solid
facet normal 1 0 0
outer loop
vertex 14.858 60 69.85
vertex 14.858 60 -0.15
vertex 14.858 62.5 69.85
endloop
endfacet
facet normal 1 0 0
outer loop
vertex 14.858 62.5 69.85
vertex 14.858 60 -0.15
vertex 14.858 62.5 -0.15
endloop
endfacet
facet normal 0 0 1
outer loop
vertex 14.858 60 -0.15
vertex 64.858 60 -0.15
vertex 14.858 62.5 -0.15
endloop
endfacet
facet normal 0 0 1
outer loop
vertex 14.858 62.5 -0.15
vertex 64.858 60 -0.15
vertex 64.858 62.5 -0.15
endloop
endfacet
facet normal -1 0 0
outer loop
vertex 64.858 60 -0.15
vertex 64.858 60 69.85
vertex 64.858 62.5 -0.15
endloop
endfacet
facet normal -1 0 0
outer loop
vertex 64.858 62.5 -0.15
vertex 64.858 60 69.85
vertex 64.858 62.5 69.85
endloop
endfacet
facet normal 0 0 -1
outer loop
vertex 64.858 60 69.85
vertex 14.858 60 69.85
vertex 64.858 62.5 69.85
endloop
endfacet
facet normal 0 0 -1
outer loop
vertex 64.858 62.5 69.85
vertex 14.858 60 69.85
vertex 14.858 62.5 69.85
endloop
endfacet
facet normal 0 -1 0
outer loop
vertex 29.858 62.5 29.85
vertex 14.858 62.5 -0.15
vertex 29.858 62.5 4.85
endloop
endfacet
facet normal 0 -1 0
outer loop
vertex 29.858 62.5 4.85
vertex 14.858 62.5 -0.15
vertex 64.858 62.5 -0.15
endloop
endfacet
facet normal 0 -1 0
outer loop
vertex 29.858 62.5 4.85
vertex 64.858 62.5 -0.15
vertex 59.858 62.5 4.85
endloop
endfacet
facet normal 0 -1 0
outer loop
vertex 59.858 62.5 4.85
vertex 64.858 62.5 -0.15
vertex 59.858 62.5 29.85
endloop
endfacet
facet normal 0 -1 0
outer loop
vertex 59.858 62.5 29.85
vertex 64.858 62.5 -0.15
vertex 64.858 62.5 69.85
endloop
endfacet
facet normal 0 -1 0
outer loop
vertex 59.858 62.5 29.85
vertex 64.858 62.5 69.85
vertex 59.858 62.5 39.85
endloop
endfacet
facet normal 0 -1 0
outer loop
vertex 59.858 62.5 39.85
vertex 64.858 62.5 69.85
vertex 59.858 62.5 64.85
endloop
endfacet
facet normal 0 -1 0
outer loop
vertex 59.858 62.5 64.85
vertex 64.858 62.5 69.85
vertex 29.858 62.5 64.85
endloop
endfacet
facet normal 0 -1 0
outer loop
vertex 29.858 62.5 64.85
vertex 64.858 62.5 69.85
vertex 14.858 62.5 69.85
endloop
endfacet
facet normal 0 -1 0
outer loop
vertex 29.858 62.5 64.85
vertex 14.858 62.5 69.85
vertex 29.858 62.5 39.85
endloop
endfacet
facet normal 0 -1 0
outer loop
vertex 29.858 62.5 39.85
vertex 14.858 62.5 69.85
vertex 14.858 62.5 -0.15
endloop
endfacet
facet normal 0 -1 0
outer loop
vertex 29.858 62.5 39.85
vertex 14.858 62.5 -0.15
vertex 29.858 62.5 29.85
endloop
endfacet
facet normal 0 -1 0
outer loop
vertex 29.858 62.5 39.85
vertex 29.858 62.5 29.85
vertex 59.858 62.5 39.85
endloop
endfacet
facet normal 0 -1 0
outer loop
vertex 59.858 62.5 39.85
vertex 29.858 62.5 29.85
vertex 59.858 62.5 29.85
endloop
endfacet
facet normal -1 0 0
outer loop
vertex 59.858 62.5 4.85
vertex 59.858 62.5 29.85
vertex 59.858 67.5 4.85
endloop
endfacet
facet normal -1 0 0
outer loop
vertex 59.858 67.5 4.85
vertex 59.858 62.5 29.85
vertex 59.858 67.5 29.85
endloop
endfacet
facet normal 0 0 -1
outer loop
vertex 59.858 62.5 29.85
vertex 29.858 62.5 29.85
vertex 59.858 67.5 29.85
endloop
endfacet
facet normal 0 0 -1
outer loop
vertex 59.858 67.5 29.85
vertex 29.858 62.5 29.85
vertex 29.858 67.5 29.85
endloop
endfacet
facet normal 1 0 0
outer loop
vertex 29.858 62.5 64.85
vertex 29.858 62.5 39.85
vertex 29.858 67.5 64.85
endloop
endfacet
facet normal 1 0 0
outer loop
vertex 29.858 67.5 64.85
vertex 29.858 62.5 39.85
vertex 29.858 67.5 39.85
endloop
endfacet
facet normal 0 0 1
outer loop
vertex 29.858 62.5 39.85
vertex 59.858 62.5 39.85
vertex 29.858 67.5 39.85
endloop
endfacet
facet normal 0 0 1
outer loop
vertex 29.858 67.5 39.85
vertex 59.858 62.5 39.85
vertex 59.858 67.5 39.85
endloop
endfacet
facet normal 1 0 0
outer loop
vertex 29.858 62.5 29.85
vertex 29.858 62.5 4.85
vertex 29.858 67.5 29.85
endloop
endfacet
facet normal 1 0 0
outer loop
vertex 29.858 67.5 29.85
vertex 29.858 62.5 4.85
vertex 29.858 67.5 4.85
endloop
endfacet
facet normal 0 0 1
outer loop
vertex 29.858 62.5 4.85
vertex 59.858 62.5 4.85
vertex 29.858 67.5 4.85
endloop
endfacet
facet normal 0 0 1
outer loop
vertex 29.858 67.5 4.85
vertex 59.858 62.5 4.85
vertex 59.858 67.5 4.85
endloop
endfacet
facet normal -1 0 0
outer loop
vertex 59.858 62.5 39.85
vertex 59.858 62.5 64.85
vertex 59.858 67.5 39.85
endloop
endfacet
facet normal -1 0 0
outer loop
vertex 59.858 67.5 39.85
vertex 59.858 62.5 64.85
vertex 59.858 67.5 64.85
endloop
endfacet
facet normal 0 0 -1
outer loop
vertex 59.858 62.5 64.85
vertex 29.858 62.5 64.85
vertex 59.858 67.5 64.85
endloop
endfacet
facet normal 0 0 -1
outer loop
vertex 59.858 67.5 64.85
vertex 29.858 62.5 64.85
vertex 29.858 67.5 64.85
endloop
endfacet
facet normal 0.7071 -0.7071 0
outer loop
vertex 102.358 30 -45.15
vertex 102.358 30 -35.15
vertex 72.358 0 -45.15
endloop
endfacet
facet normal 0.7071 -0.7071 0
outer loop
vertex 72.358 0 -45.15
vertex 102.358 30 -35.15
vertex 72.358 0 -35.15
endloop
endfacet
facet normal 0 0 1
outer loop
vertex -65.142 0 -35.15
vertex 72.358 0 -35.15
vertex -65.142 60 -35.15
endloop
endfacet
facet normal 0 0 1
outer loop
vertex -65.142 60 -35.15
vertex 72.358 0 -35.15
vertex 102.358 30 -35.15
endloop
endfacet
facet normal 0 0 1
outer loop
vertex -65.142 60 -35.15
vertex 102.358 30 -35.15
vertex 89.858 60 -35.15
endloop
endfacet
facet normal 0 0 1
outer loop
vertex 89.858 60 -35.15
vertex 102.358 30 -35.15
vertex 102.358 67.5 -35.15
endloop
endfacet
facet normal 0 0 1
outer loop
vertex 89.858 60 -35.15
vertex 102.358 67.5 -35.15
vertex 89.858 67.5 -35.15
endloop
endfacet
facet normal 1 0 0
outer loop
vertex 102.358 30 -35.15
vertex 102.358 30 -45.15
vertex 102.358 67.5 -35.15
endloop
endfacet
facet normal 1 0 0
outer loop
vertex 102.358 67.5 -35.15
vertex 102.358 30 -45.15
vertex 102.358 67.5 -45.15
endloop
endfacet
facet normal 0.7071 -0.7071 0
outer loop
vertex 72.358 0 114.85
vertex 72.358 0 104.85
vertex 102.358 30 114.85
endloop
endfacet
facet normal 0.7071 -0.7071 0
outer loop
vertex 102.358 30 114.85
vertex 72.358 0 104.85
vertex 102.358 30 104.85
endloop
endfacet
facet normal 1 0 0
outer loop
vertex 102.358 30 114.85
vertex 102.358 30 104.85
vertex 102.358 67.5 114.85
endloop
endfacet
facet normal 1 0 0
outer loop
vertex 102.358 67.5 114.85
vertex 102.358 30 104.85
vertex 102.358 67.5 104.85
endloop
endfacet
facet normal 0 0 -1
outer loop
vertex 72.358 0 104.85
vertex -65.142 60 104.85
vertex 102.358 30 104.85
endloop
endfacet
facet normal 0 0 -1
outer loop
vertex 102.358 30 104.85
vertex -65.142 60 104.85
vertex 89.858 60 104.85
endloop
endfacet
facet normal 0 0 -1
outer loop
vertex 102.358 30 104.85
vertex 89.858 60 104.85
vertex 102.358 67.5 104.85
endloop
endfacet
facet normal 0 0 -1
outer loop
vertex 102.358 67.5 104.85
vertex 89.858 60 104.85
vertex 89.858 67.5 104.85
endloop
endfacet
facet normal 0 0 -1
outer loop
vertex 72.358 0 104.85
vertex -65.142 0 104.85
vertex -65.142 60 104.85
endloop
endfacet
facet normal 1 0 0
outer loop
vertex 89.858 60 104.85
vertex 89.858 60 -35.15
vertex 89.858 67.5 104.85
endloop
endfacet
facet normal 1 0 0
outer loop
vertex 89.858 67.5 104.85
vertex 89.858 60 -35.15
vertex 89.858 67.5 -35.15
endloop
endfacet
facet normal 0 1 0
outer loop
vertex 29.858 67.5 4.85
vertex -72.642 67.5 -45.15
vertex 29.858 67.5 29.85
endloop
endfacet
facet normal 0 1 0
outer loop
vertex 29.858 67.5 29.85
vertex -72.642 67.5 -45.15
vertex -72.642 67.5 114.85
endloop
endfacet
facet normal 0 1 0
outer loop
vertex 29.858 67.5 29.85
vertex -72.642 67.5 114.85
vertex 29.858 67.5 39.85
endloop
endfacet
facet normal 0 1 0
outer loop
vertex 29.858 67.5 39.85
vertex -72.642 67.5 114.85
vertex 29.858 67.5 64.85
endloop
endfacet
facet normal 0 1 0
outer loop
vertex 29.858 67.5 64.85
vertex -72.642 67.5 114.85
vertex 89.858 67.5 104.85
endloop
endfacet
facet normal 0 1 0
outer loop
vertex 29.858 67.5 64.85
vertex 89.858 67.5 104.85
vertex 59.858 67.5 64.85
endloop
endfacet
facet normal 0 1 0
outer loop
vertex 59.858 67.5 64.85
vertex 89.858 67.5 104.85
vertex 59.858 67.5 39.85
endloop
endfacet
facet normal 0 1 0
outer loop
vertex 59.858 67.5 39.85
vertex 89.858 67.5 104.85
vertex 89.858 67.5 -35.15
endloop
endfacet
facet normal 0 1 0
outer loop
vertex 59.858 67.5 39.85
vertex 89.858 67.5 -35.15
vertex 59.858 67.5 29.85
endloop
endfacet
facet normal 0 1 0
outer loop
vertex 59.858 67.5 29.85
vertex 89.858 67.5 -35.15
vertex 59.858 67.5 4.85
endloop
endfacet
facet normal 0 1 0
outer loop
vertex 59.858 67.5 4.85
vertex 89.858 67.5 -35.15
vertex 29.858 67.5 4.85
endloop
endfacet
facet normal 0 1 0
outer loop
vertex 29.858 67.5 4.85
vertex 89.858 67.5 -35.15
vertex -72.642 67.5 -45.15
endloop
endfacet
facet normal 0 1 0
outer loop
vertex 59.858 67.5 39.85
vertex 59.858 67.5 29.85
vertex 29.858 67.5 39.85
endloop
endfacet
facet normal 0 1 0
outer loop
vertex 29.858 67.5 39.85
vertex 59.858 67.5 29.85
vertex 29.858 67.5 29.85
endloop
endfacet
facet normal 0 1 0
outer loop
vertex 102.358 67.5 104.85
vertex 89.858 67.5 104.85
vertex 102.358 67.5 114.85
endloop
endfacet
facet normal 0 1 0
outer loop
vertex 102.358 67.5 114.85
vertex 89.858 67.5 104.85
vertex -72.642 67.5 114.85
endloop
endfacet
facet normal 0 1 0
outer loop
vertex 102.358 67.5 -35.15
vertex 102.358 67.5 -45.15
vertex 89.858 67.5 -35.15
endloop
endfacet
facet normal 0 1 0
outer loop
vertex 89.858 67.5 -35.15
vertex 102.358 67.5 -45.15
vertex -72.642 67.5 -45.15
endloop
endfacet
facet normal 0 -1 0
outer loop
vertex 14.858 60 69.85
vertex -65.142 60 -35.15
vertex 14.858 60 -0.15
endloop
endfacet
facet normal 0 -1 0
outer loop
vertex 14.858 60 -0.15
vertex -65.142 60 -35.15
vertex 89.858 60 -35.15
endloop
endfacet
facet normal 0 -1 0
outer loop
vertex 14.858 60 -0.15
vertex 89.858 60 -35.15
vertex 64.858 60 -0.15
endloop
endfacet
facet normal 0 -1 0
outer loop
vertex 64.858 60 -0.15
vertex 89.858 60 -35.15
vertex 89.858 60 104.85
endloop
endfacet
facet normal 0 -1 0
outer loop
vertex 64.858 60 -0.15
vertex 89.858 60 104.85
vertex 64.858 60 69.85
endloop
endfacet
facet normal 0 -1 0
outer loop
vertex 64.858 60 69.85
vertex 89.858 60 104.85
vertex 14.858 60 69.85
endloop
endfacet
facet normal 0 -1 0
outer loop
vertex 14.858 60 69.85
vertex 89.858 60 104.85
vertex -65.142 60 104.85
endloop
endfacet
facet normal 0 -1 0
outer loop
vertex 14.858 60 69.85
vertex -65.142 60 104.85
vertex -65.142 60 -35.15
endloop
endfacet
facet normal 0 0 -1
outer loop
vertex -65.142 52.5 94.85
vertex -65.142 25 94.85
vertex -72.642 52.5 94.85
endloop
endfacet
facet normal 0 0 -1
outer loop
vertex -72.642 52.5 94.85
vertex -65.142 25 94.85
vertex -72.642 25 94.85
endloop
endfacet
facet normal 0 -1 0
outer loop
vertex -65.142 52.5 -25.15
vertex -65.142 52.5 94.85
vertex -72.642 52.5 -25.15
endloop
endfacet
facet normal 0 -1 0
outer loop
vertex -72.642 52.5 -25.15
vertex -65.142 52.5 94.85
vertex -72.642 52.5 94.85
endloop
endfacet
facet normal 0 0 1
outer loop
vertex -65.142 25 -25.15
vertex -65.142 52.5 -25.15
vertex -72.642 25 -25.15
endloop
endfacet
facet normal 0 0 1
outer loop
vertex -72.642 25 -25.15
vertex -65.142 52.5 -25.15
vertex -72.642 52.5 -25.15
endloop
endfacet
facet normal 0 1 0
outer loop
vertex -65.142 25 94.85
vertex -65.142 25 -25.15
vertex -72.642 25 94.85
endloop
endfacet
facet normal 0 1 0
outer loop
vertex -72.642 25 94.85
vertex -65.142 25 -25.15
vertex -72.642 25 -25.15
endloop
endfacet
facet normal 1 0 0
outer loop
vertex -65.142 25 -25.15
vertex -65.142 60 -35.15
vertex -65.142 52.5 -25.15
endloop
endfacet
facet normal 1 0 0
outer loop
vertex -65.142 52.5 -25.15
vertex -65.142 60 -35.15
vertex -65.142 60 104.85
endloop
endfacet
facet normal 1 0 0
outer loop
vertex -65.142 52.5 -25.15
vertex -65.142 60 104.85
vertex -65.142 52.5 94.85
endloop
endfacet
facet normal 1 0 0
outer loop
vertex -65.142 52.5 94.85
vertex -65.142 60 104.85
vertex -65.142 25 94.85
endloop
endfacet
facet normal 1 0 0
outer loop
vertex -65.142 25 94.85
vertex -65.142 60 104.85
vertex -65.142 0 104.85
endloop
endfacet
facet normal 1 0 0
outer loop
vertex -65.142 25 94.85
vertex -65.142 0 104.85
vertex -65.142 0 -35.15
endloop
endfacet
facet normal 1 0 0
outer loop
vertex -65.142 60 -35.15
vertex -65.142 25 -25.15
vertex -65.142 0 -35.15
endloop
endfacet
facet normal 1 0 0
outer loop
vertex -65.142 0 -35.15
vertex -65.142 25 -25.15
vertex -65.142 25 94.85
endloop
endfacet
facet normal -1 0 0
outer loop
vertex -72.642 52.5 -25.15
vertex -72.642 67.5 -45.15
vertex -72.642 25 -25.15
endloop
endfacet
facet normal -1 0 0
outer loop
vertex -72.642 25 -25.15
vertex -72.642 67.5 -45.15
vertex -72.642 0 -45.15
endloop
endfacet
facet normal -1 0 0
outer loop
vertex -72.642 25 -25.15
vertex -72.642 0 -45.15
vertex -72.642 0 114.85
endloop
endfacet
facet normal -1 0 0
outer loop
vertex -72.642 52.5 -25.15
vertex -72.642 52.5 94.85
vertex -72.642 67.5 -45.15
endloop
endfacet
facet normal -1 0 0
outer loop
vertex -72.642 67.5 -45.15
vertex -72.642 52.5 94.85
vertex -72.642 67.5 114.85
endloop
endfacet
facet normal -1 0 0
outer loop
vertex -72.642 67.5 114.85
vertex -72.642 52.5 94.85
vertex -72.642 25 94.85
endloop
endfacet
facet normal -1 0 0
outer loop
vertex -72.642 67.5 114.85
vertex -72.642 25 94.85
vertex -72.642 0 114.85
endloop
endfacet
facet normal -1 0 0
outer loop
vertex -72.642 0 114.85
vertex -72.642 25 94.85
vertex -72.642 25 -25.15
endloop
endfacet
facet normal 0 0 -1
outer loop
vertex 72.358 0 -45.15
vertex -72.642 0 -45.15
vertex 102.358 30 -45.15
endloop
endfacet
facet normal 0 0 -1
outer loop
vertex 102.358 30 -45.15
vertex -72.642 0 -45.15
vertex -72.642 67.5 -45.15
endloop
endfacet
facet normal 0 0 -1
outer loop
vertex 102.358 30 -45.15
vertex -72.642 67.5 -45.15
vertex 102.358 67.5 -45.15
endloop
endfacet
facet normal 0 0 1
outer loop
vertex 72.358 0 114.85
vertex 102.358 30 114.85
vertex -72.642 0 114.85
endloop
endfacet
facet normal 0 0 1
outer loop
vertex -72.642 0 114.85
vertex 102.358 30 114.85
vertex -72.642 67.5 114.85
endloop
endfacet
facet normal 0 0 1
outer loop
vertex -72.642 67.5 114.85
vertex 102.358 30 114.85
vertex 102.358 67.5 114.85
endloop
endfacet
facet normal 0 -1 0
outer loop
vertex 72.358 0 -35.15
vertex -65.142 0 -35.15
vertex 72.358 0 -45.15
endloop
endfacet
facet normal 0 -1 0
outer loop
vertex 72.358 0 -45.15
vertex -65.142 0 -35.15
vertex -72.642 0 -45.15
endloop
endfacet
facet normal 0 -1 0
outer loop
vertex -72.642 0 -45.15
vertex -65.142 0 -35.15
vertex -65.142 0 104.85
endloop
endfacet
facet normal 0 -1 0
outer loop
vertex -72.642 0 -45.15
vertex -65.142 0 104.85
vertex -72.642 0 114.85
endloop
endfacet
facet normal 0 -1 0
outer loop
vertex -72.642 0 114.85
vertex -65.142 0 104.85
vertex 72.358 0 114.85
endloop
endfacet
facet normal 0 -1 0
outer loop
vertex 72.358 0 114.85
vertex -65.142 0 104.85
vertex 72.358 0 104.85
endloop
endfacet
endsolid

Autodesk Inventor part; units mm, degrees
ref_plane "YZ Plane" through (0, 0, 0) normal (1, 0, 0) x (0, 1, 0)
ref_plane "XZ Plane" through (0, 0, 0) normal (0, 1, 0) x (-1, 0, 0)
ref_plane "XY Plane" through (0, 0, 0) normal (0, 0, 1) x (1, 0, 0)
sketch "Sketch1" plane through (0, 0, 0) normal (0, 1, 0) x (-1, 0, 0)
  line L0 (72.6415, 114.85) -> (-102.3585, 114.85)
  line L1 (-102.3585, 114.85) -> (-102.3585, -45.15)
  line L2 (-102.3585, -45.15) -> (72.6415, -45.15)
  line L3 (72.6415, -45.15) -> (72.6415, 114.85)
  line L4 (65.1415, 104.85) -> (-102.3585, 104.85)
  line L5 (-102.3585, 104.85) -> (-102.3585, -35.15)
  line L6 (-102.3585, -35.15) -> (65.1415, -35.15)
  line L7 (65.1415, -35.15) -> (65.1415, 104.85)
  line L8 (-102.3585, -35.15) -> (-89.8585, -35.15)
  line L9 (-89.8585, -35.15) -> (-89.8585, 104.85)
  line L10 (-89.8585, 104.85) -> (-102.3585, 104.85)
  line L11 (-102.3585, 104.85) -> (-102.3585, -35.15)
  point P0 (0, 0)
  dimension "d0" = 175
  dimension "d1" = 160
  dimension "d2" = 7.5
  dimension "d3" = 0
  dimension "d4" = 10
  dimension "d5" = 10
  dimension "d6" = 140
  dimension "d7" = 167.5
  dimension "d8" = 12.5
extrude "Extrusion1" add sketch "Sketch1" along normal blind 60 contours L3 L2 L1 L6 L7 L4 L0
sketch "Sketch2" plane through (-72.6415, 0, -45.15) normal (-1, 0, 0) x (0, 0, 1)
  line L0 (20, 52.5) -> (140, 52.5)
  line L1 (140, 52.5) -> (140, 25)
  line L2 (140, 25) -> (20, 25)
  line L3 (20, 25) -> (20, 52.5)
  line L4 (160, 0) -> (160, 60) projected
  line L5 (0, 0) -> (0, 60) projected
  line L6 (0, 60) -> (160, 60) projected
  line L7 (0, 0) -> (160, 0) projected
  point P0 (45.15, 0)
  dimension "d11" = 20
  dimension "d12" = 20
  dimension "d13" = 7.5
  dimension "d14" = 25
  dimension "d15" = 120
  dimension "d16" = 27.5
extrude "Extrusion2" cut sketch "Sketch2" against normal blind 60 contours L0 L1 L2 L3
sketch "Sketch3" plane through (0, 60, 0) normal (0, 1, 0) x (1, 0, 0)
  line L0 (-72.6415, -114.85) -> (102.3585, -114.85) projected
  line L1 (102.3585, 45.15) -> (-72.6415, 45.15) projected
  line L2 (-72.6415, -114.85) -> (102.3585, -114.85)
  line L3 (102.3585, -114.85) -> (102.3585, 45.15)
  line L4 (102.3585, 45.15) -> (-72.6415, 45.15)
  line L5 (-72.6415, 45.15) -> (-72.6415, -114.85)
  point P0 (0, 0)
extrude "Extrusion3" add sketch "Sketch3" along normal blind 7.5
sketch "Sketch4" plane through (0, 60, 0) normal (0, -1, 0) x (1, 0, 0)
  line L0 (-65.1415, 104.85) -> (102.3585, 104.85) projected
  line L1 (102.3585, -35.15) -> (-65.1415, -35.15) projected
  line L2 (102.3585, 104.85) -> (89.8585, 104.85)
  line L3 (89.8585, 104.85) -> (89.8585, -35.15)
  line L4 (89.8585, -35.15) -> (102.3585, -35.15)
  line L5 (102.3585, -35.15) -> (102.3585, 104.85)
  point P0 (0, 0)
  dimension "d21" = 12.5
extrude "Extrusion4" cut sketch "Sketch4" against normal blind 7.5
chamfer "Chamfer1" distance 30 angle 45 2 edges at (102.3585, 0, 109.85) (102.3585, 0, -40.15)
sketch "Sketch5" plane through (0, 67.5, 0) normal (0, 1, 0) x (1, 0, 0)
  line L0 (59.8585, -4.85) -> (29.8585, -4.85)
  line L1 (29.8585, -4.85) -> (29.8585, -29.85)
  line L2 (29.8585, -29.85) -> (59.8585, -29.85)
  line L3 (59.8585, -29.85) -> (59.8585, -4.85)
  line L4 (59.8585, -64.85) -> (29.8585, -64.85)
  line L5 (29.8585, -64.85) -> (29.8585, -39.85)
  line L6 (29.8585, -39.85) -> (59.8585, -39.85)
  line L7 (59.8585, -39.85) -> (59.8585, -64.85)
  line L8 (89.8585, -104.85) -> (89.8585, 35.15) projected
  line L9 (-72.6415, -114.85) -> (102.3585, -114.85) projected
  line L10 (102.3585, 45.15) -> (-72.6415, 45.15) projected
  point P0 (0, 0)
  dimension "d27" = 30
  dimension "d28" = 30
  dimension "d29" = 10
  dimension "d30" = 50
  dimension "d31" = 50
  dimension "d32" = 25
  dimension "d33" = 30
  dimension "d34" = 30
extrude "Extrusion5" cut sketch "Sketch5" against normal blind 7.5
sketch "Sketch6" plane through (0, 60, 0) normal (0, -1, 0) x (1, 0, 0)
  line L0 (64.8585, 69.85) -> (14.8585, 69.85)
  line L1 (14.8585, 69.85) -> (14.8585, -0.15)
  line L2 (14.8585, -0.15) -> (64.8585, -0.15)
  line L3 (64.8585, -0.15) -> (64.8585, 69.85)
  line L4 (59.8585, 64.85) -> (59.8585, 39.85) projected
  line L5 (29.8585, 39.85) -> (29.8585, 64.85) projected
  line L6 (29.8585, 64.85) -> (59.8585, 64.85) projected
  line L7 (59.8585, 4.85) -> (29.8585, 4.85) projected
  point P0 (0, 0)
  dimension "d37" = 5
  dimension "d38" = 15
  dimension "d39" = 5
  dimension "d40" = 5
extrude "Extrusion6" cut sketch "Sketch6" against normal blind 2.5
equation "\"d5\" = d4"
equation "\"d12\" = d11"
equation "\"d30\" = d31"
equation "\"d34\" = d33"
properties part number "Base-Motherboard"
